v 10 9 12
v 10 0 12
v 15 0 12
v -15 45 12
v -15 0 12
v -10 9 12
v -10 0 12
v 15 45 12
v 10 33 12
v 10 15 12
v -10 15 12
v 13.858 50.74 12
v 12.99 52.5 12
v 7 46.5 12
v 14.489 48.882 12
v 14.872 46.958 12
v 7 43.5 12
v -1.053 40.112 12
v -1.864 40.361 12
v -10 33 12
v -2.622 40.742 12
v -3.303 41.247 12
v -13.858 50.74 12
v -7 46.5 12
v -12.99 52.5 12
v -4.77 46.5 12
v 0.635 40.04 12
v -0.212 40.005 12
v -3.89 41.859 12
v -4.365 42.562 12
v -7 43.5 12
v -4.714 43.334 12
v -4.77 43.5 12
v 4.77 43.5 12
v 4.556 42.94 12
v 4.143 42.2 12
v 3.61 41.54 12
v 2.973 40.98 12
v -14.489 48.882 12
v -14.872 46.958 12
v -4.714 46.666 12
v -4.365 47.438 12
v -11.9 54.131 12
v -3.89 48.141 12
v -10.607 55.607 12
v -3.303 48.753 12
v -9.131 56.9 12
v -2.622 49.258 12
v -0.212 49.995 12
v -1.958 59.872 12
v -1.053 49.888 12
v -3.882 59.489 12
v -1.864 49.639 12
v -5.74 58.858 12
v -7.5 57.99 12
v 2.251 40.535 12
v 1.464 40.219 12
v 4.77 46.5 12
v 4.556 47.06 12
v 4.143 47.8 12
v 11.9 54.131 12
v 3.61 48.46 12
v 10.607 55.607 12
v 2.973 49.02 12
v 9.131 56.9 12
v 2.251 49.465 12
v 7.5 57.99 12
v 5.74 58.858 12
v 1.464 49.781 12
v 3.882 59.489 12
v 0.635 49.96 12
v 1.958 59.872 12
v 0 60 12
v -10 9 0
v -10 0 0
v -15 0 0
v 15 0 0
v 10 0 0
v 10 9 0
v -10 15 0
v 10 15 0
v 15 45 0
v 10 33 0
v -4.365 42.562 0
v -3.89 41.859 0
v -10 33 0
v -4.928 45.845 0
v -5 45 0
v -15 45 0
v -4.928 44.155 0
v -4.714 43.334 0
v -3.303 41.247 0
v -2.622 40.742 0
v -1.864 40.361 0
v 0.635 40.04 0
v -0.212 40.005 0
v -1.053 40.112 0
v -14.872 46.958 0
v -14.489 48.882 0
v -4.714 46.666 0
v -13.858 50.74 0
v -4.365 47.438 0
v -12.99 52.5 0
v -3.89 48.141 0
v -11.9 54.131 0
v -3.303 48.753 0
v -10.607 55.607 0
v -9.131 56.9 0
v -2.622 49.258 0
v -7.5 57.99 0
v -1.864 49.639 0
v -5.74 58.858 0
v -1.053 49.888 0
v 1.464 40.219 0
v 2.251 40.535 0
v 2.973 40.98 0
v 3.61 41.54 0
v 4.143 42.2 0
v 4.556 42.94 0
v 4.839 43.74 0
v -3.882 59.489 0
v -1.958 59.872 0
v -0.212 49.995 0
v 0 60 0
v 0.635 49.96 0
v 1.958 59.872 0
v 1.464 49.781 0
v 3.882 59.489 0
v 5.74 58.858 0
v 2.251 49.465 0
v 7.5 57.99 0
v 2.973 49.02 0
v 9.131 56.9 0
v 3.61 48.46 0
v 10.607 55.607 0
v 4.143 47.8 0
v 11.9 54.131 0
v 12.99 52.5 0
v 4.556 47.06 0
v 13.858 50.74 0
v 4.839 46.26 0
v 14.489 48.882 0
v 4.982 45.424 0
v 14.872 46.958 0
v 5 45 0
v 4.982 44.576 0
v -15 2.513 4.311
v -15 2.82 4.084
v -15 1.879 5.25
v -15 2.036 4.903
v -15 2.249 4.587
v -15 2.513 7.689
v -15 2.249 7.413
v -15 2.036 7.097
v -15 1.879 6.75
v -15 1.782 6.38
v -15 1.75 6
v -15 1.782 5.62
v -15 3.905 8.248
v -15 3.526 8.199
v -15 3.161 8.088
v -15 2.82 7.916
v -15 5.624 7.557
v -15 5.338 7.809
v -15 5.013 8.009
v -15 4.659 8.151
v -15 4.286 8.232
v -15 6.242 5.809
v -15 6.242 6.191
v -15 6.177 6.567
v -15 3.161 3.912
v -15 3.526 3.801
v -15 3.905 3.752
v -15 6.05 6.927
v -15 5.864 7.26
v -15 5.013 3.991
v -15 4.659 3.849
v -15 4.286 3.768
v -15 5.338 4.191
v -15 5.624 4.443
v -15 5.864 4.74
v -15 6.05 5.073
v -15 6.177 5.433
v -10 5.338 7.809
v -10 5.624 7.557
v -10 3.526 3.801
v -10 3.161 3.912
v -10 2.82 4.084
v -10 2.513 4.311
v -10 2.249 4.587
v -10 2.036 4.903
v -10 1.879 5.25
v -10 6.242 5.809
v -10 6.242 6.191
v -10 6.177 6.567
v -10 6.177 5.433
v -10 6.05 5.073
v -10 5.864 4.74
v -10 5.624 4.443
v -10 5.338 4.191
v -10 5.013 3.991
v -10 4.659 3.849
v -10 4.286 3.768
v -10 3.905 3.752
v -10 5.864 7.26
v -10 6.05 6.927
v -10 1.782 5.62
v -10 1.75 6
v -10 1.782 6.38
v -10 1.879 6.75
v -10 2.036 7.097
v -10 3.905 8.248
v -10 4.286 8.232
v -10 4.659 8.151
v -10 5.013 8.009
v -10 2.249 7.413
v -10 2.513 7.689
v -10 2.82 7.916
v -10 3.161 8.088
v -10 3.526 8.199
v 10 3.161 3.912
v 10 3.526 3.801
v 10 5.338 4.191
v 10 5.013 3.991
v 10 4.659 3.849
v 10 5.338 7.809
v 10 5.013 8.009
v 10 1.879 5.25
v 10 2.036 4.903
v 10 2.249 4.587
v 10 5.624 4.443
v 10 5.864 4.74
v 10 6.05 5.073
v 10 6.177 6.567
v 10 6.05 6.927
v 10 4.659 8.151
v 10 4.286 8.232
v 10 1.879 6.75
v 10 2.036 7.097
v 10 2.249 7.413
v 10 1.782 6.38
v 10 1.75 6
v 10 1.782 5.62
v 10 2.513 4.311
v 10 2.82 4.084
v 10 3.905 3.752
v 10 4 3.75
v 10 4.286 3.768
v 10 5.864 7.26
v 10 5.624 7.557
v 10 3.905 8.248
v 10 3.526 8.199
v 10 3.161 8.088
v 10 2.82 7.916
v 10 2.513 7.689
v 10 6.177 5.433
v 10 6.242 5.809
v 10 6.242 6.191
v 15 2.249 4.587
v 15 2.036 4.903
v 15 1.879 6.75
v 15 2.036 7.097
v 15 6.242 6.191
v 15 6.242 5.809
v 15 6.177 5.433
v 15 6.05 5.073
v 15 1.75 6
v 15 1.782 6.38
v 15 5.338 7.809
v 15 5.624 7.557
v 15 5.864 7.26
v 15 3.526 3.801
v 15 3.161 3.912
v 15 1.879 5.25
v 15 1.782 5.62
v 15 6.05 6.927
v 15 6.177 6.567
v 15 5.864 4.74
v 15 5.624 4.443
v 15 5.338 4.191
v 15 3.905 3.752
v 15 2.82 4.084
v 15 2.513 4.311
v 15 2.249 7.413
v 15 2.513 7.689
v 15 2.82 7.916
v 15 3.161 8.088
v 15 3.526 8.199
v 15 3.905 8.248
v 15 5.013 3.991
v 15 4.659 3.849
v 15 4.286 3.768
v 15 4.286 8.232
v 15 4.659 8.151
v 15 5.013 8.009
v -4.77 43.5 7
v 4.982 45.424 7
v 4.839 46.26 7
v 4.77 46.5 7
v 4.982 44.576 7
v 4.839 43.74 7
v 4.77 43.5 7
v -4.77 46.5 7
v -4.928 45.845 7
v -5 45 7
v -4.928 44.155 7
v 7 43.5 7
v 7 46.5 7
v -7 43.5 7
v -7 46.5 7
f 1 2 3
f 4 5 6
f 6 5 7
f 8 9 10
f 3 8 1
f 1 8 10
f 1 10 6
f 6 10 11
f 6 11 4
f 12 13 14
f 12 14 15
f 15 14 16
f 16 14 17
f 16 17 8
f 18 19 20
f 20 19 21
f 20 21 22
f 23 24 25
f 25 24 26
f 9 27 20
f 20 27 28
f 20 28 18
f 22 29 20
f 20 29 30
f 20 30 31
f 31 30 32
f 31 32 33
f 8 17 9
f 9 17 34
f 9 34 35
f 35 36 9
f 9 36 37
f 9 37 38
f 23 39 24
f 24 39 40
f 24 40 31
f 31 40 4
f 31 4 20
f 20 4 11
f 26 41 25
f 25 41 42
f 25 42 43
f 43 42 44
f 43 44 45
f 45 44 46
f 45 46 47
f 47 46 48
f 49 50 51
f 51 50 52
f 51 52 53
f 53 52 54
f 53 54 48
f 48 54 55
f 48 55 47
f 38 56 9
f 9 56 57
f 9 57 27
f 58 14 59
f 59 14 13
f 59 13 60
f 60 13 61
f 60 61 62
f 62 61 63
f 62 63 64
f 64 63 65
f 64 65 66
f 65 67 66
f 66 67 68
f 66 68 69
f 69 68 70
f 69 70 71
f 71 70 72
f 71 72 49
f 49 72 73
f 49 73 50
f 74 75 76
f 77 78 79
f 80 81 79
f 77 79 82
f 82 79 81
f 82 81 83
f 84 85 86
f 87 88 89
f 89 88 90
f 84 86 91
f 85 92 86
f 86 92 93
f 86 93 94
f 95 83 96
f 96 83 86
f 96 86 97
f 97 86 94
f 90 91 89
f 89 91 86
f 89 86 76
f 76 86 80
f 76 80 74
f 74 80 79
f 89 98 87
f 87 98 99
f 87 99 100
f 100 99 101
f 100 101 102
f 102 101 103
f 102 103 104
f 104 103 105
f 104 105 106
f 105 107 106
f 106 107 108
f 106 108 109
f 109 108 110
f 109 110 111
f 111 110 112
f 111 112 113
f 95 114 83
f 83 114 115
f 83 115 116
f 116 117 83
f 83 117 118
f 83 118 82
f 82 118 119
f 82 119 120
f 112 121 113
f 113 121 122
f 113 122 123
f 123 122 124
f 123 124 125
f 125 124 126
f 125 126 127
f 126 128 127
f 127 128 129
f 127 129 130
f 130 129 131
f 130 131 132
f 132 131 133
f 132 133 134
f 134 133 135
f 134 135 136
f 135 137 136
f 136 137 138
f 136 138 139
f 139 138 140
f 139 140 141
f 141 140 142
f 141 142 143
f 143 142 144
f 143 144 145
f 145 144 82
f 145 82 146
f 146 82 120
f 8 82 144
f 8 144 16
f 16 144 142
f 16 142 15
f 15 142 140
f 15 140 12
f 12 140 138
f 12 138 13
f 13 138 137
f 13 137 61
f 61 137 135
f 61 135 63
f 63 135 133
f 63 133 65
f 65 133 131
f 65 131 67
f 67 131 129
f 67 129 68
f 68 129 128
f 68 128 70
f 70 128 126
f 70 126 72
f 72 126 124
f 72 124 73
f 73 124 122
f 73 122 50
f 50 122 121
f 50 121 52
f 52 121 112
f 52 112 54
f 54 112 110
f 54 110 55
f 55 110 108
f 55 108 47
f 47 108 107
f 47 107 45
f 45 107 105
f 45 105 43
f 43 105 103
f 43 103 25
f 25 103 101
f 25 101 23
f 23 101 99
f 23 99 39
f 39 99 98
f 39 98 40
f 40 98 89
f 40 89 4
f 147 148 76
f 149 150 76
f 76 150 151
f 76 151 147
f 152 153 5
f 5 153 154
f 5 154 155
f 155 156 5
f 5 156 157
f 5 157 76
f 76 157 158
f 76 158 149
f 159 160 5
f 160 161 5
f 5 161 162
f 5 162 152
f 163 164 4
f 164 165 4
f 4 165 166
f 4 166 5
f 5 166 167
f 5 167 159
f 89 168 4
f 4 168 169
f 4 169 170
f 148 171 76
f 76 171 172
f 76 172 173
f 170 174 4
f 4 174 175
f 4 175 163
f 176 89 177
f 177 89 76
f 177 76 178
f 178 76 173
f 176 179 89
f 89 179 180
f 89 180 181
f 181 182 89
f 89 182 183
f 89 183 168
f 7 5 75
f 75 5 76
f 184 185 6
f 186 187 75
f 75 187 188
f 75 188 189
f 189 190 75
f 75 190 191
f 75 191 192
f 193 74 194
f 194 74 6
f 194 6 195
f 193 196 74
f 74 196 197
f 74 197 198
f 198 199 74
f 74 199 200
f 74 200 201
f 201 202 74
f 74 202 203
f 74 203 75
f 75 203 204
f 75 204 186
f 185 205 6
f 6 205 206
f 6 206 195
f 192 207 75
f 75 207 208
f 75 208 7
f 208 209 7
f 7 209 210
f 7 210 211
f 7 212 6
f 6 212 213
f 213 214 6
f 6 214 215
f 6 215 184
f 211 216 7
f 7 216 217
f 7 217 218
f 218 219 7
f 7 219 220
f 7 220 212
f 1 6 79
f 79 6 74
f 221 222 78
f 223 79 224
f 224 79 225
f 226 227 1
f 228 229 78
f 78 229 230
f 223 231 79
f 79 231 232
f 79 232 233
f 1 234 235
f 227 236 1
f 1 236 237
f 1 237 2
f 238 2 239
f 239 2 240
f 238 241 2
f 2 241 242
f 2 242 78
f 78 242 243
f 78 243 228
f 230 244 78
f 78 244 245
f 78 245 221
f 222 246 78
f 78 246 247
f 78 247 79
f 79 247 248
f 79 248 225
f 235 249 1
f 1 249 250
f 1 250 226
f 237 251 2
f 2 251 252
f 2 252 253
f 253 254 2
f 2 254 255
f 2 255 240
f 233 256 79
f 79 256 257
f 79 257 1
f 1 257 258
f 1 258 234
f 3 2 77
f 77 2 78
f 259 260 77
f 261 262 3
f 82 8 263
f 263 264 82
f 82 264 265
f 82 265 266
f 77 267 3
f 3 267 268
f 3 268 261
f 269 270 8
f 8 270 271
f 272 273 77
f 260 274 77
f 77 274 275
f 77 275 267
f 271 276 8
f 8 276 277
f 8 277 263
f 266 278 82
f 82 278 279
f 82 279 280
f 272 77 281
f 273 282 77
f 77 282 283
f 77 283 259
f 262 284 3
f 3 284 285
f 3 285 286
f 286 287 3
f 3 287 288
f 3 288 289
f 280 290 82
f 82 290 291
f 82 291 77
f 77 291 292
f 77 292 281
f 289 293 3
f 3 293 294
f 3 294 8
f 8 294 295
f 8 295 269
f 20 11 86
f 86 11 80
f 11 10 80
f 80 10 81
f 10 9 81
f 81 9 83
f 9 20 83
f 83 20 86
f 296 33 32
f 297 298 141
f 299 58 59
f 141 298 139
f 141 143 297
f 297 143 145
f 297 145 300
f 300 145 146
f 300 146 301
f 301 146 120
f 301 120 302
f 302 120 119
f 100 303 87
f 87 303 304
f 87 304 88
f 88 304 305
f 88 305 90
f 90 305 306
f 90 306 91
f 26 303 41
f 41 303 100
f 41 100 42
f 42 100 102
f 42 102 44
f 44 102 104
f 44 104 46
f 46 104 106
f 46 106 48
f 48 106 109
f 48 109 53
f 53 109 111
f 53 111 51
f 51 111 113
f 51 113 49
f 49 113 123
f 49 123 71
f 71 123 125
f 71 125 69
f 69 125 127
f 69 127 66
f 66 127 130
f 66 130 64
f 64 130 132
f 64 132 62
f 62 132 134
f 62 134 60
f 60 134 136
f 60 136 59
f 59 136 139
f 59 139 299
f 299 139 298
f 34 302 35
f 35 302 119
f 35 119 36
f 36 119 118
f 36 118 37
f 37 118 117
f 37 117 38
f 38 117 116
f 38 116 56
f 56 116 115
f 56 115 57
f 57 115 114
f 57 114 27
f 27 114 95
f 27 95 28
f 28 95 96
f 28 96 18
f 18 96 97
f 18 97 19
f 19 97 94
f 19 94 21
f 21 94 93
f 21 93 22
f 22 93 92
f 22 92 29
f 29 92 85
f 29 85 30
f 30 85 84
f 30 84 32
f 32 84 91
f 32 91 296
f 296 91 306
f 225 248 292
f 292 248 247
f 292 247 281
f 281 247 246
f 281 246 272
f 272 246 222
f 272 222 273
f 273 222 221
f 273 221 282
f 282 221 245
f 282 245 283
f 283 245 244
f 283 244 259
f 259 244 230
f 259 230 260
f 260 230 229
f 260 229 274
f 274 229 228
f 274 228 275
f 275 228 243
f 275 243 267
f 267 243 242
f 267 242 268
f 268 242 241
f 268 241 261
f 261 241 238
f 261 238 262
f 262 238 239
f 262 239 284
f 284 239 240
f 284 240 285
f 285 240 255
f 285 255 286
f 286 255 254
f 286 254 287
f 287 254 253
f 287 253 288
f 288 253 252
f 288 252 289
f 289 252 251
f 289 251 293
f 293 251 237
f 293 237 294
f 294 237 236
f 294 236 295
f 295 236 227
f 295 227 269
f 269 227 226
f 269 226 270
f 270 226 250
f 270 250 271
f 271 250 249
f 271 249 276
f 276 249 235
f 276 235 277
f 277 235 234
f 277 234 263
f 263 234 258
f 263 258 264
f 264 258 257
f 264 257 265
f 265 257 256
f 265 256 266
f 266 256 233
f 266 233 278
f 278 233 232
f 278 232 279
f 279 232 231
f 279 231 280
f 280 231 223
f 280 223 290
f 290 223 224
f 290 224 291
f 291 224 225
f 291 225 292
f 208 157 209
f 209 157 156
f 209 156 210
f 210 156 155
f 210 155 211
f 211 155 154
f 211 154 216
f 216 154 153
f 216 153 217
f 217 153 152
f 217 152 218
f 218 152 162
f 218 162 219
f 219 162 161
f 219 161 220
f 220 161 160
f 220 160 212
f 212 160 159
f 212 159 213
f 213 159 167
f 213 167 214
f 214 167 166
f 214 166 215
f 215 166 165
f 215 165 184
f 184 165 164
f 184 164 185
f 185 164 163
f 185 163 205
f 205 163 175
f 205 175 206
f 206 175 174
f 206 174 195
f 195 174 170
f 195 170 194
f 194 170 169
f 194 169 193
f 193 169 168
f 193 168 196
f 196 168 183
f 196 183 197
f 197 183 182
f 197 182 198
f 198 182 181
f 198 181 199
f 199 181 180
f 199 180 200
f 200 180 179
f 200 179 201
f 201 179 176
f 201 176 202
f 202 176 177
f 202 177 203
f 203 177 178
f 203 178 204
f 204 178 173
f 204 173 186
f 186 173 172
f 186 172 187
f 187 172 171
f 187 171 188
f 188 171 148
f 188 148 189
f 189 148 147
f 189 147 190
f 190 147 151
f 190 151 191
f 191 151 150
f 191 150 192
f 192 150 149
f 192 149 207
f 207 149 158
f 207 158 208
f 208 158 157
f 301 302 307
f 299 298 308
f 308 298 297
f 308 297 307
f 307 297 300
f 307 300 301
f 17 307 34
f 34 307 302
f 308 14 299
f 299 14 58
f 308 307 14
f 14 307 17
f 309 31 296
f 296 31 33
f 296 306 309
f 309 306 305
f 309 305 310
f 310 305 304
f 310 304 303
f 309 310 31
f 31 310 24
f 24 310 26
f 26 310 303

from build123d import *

# Parameters (mm, degrees)
SKETCH1_R           = 5
SKETCH1_W           = 20
SKETCH1_H           = 18
BOSS_EXTRUDE1_DEPTH = 12
SKETCH2_R           = 2.25
CUT_EXTRUDE1_DEPTH  = 69.14690015
SKETCH3_W           = 14
SKETCH3_H           = 3
CUT_EXTRUDE2_DEPTH  = 5


with BuildPart() as part:
    # Sketch1 → Boss-Extrude1 (new body)
    with BuildSketch(Plane.XY):
        with BuildLine():
            Line((15, 45), (15, 0))
            Line((15, 0), (10, 0))
            Line((10, 0), (10, 9))
            Line((10, 9), (-10, 9))
            Line((-10, 9), (-10, 0))
            Line((-10, 0), (-15, 0))
            Line((-15, 0), (-15, 45))
            ThreePointArc((-15, 45), (0, 60), (15, 45))
        make_face()
        with Locations((0, 45)):
            Circle(SKETCH1_R, mode=Mode.SUBTRACT)
        with Locations((0, 24)):
            Rectangle(SKETCH1_W, SKETCH1_H, mode=Mode.SUBTRACT)
    extrude(amount=BOSS_EXTRUDE1_DEPTH)

    # Sketch2 → Cut-Extrude1 (cut, through all)
    with BuildSketch(Plane.ZY.offset(15)):
        with Locations(Location((6, 4, 0), (0, 0, 270))):
            Circle(SKETCH2_R)
    extrude(amount=-CUT_EXTRUDE1_DEPTH, mode=Mode.SUBTRACT)

    # Sketch3 → Cut-Extrude2 (cut)
    with BuildSketch(Plane.XY.offset(12)):
        with Locations((0, 45)):
            Rectangle(SKETCH3_W, SKETCH3_H)
    extrude(amount=-CUT_EXTRUDE2_DEPTH, mode=Mode.SUBTRACT)


solid = part.part
